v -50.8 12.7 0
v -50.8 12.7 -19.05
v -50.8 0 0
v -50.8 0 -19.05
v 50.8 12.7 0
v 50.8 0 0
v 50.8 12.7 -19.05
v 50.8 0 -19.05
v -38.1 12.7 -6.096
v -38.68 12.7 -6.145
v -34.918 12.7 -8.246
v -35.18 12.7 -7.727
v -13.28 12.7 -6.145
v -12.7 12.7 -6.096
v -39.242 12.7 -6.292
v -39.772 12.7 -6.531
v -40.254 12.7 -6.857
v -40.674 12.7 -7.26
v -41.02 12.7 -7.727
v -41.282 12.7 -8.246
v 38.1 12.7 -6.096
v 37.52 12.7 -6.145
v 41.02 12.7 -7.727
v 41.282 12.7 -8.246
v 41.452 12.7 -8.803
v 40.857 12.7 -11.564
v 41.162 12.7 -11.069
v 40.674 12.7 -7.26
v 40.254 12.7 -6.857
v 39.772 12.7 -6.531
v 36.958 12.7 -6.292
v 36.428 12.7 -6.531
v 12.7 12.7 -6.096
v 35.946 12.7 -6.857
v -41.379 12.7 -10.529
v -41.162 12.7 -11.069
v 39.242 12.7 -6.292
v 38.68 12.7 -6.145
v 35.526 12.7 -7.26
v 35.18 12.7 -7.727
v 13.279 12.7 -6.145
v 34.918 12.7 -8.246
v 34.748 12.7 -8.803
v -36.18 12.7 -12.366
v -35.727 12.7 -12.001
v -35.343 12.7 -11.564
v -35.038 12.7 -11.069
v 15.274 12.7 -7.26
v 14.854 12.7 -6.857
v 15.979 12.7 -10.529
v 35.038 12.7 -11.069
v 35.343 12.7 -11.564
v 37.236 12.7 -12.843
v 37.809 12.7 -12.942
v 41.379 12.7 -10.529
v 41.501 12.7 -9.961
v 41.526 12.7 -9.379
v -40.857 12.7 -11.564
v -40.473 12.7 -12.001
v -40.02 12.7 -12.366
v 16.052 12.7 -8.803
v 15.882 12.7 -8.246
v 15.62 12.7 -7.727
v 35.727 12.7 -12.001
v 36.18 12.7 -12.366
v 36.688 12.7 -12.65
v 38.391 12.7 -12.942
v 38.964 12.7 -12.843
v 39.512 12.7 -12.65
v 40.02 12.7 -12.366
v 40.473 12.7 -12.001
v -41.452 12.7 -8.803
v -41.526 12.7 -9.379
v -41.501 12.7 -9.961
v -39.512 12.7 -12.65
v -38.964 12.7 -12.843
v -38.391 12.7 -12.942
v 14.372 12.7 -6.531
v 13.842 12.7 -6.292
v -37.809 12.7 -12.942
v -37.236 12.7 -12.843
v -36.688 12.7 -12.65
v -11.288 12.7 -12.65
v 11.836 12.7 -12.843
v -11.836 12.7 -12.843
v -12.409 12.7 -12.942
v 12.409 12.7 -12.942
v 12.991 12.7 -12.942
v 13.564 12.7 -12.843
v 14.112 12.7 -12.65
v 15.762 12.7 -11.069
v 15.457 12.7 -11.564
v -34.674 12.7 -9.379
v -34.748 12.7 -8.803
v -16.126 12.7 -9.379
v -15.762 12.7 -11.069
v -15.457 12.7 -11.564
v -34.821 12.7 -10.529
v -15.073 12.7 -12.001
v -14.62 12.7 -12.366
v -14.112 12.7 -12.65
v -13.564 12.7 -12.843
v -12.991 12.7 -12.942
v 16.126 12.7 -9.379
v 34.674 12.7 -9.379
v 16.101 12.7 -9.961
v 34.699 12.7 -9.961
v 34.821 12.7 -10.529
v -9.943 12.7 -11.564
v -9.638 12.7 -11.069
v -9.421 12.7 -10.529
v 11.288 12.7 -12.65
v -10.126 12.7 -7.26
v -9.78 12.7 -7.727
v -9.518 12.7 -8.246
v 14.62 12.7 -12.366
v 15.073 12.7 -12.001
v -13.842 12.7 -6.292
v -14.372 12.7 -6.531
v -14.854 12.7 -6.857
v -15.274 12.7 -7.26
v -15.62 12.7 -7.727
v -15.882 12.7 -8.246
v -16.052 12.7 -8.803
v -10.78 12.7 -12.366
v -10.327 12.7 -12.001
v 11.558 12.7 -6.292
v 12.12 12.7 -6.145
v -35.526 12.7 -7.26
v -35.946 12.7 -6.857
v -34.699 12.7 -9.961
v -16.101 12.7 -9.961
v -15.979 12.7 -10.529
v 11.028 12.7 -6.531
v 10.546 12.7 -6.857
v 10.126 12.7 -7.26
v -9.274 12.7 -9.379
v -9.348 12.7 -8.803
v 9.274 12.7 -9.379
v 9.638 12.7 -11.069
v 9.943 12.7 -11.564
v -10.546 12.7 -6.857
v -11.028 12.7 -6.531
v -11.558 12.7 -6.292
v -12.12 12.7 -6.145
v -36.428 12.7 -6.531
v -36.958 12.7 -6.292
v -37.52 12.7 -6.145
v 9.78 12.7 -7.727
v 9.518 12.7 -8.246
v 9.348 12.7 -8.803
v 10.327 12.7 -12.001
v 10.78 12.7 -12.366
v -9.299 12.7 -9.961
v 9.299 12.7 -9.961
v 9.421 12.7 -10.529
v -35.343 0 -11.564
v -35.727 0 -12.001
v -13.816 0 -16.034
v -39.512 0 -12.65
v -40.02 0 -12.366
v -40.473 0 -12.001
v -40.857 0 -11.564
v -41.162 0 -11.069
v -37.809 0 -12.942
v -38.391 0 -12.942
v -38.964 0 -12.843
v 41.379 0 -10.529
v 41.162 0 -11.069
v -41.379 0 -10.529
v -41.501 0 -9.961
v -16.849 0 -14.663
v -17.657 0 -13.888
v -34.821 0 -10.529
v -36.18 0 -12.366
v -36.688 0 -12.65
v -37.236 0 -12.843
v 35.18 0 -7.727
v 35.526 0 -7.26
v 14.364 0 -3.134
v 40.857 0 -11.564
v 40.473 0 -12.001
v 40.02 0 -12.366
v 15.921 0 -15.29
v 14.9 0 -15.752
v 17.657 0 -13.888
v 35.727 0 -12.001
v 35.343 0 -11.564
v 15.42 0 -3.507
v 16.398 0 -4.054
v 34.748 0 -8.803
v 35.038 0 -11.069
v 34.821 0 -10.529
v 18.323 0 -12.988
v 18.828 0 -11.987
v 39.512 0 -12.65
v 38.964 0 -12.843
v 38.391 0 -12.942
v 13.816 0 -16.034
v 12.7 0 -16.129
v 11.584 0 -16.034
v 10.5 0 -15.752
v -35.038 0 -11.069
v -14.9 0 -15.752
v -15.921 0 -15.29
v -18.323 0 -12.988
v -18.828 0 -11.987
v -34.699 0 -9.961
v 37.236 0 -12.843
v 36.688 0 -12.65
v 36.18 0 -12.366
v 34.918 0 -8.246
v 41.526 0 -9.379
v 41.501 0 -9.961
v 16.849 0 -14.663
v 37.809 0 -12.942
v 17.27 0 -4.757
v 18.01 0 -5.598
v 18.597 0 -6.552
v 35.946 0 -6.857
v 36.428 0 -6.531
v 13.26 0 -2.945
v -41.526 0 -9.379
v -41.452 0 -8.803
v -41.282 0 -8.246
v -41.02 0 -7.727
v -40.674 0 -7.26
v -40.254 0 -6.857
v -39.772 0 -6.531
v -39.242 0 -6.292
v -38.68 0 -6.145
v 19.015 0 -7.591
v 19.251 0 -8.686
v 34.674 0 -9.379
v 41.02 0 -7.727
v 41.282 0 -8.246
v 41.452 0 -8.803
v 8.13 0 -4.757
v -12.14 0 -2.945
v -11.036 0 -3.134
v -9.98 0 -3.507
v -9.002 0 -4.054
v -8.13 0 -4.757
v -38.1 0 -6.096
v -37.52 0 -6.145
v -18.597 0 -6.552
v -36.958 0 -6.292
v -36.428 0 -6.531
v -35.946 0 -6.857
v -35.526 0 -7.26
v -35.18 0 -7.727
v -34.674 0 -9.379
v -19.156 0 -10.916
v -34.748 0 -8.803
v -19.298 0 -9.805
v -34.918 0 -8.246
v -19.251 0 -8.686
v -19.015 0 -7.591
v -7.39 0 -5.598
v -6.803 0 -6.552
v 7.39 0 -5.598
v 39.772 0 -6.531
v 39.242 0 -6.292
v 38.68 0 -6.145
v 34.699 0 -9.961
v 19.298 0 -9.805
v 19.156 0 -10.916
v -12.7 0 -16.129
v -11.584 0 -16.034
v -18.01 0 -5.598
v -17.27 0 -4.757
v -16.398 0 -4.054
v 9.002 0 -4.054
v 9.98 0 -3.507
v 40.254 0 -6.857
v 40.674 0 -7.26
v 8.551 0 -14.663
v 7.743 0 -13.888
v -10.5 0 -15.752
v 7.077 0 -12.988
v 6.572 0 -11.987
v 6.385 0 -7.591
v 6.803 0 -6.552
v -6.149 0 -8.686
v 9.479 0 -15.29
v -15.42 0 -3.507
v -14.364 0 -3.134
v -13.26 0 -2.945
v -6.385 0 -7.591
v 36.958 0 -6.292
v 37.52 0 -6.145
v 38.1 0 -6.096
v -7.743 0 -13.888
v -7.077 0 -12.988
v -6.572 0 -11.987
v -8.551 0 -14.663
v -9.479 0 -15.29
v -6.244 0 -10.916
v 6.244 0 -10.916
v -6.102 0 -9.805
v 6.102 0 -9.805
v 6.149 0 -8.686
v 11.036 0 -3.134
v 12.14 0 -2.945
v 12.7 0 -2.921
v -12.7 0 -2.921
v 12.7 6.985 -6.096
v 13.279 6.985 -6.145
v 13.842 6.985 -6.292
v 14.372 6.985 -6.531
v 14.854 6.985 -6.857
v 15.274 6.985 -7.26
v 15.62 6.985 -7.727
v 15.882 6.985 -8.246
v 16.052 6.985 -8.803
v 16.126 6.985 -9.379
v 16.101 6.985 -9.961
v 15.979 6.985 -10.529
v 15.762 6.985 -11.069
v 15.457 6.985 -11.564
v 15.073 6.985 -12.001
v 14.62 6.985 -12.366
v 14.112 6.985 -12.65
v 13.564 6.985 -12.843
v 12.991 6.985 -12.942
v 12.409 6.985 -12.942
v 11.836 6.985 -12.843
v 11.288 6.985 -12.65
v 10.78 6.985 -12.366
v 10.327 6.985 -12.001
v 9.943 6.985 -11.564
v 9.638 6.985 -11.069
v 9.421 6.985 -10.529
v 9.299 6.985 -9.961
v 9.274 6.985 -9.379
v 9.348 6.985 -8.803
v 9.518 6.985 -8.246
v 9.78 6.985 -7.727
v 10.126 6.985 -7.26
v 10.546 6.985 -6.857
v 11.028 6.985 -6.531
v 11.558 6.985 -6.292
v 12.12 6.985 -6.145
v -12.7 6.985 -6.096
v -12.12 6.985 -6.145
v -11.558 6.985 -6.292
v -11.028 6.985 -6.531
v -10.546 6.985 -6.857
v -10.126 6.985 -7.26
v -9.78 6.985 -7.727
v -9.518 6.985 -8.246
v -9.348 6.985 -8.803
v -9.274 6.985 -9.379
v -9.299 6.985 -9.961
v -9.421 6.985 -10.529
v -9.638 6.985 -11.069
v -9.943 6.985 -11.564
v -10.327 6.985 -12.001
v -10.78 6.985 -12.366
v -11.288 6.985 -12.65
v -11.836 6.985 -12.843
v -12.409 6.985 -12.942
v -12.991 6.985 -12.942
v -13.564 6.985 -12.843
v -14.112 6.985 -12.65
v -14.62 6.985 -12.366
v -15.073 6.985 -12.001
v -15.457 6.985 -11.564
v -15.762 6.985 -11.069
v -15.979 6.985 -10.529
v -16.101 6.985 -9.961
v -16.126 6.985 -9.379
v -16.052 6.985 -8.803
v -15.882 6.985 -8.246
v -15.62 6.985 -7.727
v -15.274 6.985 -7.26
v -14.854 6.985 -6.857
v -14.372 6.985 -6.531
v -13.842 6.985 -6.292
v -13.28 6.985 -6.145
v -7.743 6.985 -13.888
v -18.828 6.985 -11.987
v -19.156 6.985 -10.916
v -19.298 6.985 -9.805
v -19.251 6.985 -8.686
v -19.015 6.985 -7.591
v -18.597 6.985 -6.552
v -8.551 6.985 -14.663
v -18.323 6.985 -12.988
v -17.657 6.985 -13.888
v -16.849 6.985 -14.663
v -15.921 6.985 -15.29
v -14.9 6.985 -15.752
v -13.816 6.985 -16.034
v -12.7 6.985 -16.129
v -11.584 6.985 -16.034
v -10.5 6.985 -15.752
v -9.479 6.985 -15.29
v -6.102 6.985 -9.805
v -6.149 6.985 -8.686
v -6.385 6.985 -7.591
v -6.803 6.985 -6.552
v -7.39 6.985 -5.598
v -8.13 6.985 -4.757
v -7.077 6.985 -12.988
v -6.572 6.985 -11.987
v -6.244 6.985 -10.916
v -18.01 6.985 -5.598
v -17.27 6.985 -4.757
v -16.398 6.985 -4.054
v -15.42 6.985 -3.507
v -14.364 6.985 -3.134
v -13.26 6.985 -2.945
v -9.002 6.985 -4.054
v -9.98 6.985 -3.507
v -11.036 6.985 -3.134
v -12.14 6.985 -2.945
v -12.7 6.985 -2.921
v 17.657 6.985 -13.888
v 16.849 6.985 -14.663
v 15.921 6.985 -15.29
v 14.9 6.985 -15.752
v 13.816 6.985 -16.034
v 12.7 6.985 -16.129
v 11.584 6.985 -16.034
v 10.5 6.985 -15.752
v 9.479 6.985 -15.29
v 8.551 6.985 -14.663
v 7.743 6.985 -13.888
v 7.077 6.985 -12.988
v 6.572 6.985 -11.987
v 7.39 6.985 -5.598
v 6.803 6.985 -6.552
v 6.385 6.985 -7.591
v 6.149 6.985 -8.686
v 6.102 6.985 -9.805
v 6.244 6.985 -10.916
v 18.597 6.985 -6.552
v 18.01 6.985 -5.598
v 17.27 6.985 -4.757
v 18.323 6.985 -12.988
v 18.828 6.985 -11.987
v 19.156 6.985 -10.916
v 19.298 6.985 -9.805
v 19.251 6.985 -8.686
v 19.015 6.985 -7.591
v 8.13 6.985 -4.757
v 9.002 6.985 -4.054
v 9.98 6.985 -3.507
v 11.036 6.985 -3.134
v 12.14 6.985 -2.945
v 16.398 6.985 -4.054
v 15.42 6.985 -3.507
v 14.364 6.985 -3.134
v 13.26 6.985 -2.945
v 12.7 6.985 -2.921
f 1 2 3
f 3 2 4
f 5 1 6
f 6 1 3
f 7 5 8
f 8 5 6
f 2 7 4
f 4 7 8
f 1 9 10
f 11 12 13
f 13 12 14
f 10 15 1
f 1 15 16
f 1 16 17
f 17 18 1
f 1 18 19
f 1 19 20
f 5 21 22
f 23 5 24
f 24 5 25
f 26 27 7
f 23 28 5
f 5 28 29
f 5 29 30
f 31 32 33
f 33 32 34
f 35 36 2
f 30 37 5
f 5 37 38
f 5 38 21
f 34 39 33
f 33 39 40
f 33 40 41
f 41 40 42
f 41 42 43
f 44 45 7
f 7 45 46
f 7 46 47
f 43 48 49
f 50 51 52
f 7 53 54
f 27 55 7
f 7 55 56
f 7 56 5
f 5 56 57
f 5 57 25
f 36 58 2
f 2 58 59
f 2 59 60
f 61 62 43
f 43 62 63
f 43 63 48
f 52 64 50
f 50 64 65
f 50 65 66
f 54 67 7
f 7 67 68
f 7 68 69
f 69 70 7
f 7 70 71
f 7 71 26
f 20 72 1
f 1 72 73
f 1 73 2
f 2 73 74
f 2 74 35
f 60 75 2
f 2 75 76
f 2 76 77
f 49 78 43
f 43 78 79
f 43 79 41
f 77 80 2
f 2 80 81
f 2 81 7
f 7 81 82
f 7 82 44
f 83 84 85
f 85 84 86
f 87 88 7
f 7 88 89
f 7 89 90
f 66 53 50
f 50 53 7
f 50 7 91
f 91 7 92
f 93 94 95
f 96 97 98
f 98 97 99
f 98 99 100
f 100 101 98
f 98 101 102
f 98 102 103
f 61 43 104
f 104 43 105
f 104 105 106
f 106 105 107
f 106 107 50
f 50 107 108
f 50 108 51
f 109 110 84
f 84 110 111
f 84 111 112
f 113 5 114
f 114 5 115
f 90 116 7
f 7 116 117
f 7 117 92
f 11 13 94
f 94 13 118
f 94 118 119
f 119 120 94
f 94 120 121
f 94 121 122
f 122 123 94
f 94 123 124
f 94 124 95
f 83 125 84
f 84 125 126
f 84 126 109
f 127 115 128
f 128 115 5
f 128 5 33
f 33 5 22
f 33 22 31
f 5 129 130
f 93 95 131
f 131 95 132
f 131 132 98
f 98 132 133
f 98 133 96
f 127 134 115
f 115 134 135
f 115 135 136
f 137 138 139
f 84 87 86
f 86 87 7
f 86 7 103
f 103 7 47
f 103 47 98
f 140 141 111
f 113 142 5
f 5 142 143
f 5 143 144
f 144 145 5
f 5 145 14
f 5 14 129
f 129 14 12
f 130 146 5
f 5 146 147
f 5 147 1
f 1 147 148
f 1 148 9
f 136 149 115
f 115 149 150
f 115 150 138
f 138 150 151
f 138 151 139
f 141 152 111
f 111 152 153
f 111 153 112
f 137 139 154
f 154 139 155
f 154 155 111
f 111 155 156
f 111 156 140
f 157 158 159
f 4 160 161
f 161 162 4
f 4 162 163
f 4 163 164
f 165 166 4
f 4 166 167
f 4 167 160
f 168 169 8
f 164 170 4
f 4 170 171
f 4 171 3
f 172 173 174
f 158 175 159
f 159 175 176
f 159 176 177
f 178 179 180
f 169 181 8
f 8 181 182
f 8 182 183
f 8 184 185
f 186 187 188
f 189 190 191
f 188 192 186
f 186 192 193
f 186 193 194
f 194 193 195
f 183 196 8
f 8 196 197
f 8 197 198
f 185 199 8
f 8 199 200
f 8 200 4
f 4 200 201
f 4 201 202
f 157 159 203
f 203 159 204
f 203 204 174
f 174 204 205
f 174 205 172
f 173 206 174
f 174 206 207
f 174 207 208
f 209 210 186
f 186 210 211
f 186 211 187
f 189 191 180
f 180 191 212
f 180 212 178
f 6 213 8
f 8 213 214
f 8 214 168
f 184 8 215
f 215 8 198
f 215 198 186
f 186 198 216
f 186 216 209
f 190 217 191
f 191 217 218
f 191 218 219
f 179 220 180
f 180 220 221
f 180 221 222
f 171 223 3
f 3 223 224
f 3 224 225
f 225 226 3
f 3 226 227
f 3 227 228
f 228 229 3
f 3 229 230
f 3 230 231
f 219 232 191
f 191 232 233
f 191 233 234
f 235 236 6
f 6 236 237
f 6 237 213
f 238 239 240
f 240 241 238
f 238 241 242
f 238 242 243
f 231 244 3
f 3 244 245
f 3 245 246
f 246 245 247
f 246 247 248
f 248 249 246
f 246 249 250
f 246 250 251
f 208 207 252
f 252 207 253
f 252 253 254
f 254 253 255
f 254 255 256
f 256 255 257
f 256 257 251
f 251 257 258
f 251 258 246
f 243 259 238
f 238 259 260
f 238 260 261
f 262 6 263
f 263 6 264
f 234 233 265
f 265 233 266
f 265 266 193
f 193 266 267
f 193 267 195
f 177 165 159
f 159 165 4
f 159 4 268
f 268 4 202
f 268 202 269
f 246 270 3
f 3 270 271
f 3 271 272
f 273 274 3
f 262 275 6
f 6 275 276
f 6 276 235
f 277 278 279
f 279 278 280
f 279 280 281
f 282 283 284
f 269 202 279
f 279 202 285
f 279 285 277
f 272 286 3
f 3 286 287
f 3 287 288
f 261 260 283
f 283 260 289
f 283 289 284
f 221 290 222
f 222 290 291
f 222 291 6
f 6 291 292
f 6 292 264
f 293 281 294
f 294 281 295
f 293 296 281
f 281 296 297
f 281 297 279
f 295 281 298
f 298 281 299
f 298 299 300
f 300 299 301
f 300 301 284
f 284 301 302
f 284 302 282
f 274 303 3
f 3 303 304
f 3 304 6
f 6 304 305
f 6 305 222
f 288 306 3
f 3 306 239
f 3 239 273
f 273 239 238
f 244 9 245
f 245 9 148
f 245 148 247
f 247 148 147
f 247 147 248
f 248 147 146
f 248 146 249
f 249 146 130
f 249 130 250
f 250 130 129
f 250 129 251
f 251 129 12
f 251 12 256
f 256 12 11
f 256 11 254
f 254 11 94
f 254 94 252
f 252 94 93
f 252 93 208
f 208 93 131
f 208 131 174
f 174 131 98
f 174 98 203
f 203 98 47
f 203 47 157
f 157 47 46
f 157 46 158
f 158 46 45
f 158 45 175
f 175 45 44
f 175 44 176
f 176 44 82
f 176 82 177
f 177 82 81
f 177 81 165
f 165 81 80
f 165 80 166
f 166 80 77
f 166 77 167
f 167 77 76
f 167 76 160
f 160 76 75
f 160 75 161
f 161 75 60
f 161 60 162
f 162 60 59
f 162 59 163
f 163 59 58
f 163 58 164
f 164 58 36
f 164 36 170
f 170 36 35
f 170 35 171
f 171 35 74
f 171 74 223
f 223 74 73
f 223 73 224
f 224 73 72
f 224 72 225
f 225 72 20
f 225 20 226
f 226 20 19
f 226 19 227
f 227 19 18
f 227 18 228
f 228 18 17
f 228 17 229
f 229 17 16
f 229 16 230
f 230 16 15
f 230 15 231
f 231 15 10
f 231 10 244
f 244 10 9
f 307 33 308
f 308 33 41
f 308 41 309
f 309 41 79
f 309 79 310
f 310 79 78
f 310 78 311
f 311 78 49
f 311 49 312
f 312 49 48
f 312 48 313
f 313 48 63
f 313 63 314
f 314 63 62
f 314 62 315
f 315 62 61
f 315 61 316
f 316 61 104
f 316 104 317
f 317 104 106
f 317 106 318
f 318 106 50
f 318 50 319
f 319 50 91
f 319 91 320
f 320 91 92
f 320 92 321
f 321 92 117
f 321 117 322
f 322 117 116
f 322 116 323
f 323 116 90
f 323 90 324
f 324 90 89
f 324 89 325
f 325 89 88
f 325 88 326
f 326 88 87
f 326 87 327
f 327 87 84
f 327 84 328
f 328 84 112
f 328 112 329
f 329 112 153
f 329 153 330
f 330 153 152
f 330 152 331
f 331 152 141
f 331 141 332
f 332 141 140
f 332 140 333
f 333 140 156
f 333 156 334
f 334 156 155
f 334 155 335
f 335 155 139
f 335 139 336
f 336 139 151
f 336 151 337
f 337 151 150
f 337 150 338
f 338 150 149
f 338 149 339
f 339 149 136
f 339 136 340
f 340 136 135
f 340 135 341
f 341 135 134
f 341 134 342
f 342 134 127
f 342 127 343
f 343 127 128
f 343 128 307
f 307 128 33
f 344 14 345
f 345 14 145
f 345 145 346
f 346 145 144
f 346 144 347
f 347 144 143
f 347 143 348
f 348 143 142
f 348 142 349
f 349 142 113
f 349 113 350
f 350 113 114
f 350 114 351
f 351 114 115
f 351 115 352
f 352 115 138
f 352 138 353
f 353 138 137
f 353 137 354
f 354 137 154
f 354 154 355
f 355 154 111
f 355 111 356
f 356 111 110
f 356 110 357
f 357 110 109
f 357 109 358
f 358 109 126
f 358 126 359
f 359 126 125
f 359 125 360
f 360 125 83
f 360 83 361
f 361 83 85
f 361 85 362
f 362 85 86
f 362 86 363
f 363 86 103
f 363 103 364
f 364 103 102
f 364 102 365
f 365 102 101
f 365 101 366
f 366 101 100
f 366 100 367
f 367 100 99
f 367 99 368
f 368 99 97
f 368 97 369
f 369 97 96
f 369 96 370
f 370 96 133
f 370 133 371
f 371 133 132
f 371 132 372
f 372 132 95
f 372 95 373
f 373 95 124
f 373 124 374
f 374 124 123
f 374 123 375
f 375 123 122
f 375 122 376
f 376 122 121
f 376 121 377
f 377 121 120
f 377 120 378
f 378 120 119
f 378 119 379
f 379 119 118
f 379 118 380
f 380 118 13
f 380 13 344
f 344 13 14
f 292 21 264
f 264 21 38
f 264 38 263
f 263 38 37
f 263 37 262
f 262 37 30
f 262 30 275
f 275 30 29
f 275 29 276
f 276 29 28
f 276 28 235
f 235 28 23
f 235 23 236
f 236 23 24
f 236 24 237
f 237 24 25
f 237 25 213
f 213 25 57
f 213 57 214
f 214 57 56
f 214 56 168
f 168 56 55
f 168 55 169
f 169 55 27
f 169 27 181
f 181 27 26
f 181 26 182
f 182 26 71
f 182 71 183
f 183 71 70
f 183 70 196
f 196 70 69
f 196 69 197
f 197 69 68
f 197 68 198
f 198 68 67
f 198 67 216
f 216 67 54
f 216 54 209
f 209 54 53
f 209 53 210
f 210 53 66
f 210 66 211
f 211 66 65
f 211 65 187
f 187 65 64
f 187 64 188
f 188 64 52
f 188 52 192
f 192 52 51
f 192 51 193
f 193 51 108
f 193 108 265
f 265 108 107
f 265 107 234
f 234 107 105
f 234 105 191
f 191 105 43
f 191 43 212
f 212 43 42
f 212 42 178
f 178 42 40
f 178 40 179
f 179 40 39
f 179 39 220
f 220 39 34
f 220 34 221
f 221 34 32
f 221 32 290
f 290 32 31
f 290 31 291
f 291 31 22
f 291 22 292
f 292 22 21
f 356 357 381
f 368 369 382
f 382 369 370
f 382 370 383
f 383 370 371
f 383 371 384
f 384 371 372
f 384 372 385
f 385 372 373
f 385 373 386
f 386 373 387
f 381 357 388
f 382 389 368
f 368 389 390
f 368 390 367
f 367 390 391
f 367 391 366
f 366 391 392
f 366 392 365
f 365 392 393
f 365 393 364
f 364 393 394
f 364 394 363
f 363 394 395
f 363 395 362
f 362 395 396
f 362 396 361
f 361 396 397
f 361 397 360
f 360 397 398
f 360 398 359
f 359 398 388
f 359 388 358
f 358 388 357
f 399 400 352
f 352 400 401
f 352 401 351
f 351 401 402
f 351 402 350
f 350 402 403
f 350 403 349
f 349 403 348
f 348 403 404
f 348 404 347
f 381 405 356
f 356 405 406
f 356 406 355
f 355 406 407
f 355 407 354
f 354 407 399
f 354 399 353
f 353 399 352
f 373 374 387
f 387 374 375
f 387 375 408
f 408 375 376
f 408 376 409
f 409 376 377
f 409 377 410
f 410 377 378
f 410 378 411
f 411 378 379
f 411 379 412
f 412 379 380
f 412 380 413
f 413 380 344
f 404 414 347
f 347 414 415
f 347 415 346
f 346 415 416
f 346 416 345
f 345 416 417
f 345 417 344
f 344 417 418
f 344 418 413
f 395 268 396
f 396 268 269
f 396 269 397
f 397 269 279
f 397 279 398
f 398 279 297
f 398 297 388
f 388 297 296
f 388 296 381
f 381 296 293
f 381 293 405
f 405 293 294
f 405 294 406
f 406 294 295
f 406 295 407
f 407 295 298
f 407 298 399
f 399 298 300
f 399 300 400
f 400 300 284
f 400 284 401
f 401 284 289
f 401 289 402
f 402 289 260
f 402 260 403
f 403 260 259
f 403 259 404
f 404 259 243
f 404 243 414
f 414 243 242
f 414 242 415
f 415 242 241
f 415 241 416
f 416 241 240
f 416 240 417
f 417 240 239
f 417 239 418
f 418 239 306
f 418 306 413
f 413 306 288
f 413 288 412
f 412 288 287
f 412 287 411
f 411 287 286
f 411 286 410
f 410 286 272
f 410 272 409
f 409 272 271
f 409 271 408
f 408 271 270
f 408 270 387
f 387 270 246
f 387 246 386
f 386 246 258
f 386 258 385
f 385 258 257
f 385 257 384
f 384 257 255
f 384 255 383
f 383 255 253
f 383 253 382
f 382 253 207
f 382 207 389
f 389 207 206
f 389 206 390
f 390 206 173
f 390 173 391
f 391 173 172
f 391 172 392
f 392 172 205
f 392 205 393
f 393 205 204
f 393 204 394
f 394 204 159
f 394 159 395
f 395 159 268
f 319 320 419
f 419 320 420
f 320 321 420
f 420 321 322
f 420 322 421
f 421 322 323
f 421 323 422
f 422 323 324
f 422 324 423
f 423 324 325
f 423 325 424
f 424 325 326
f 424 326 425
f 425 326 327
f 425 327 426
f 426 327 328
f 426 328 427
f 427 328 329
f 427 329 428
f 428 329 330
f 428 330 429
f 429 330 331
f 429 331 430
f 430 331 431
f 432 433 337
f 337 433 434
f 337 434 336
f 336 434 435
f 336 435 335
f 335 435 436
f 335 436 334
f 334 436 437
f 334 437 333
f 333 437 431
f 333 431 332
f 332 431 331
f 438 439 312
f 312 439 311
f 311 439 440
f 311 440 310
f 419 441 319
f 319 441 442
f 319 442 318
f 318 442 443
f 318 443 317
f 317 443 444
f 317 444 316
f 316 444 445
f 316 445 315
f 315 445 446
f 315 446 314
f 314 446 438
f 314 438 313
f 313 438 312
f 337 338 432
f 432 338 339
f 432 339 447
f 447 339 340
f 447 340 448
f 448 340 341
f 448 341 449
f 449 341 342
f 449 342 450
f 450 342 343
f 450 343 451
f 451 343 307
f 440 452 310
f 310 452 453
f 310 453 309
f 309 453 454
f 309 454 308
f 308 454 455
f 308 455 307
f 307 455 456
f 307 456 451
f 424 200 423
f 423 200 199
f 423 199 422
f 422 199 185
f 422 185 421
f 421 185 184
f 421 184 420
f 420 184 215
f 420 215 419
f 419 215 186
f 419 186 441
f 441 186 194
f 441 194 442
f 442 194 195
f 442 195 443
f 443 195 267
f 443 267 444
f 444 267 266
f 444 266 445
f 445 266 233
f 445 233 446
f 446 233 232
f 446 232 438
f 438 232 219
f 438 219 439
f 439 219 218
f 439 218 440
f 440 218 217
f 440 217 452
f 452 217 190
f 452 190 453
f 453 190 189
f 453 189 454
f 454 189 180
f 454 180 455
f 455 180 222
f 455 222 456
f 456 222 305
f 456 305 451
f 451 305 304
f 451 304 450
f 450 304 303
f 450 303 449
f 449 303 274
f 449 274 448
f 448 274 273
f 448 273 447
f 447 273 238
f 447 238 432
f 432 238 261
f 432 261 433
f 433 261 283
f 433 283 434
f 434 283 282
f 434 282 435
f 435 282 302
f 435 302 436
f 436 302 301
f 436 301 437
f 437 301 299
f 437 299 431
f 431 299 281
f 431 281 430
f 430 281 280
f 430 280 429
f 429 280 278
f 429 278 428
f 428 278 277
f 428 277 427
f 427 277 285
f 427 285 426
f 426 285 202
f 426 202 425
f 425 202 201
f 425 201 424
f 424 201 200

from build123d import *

# Parameters (mm, degrees)
SKETCH1_W           = 101.6
SKETCH1_H           = 19.05
BOSS_EXTRUDE1_DEPTH = 12.7
SKETCH2_R           = 3.429
CUT_EXTRUDE1_DEPTH  = 56.72102386
SKETCH3_R           = 6.604
CUT_EXTRUDE4_DEPTH  = 6.985


with BuildPart() as part:
    # Sketch1 → Boss-Extrude1 (new body)
    with BuildSketch(Plane(origin=(0, 0, 0), x_dir=(1, 0, 0), z_dir=(0, 1, 0))):
        with Locations((0, 9.525)):
            Rectangle(SKETCH1_W, SKETCH1_H)
    extrude(amount=BOSS_EXTRUDE1_DEPTH)

    # Sketch2 → Cut-Extrude1 (cut, through all)
    with BuildSketch(Plane(origin=(0, 12.7, 0), x_dir=(1, 0, 0), z_dir=(0, 1, 0))):
        with Locations(Location((-38.1, 9.525, 0), (0, 0, 270))):
            Circle(SKETCH2_R)
        with Locations(Location((38.1, 9.525, 0), (0, 0, 270))):
            Circle(SKETCH2_R)
        with Locations(Location((-12.7, 9.525, 0), (0, 0, 270))):
            Circle(SKETCH2_R)
        with Locations(Location((12.7, 9.525, 0), (0, 0, 270))):
            Circle(SKETCH2_R)
    extrude(amount=-CUT_EXTRUDE1_DEPTH, mode=Mode.SUBTRACT)

    # Sketch3 → Cut-Extrude4 (cut)
    with BuildSketch(Plane(origin=(0, 0, 0), x_dir=(1, 0, 0), z_dir=(0, 1, 0))):
        with Locations(Location((-12.7, 9.525, 0), (0, 0, 270))):
            Circle(SKETCH3_R)
        with Locations(Location((12.7, 9.525, 0), (0, 0, 270))):
            Circle(SKETCH3_R)
    extrude(amount=CUT_EXTRUDE4_DEPTH, mode=Mode.SUBTRACT)


solid = part.part
